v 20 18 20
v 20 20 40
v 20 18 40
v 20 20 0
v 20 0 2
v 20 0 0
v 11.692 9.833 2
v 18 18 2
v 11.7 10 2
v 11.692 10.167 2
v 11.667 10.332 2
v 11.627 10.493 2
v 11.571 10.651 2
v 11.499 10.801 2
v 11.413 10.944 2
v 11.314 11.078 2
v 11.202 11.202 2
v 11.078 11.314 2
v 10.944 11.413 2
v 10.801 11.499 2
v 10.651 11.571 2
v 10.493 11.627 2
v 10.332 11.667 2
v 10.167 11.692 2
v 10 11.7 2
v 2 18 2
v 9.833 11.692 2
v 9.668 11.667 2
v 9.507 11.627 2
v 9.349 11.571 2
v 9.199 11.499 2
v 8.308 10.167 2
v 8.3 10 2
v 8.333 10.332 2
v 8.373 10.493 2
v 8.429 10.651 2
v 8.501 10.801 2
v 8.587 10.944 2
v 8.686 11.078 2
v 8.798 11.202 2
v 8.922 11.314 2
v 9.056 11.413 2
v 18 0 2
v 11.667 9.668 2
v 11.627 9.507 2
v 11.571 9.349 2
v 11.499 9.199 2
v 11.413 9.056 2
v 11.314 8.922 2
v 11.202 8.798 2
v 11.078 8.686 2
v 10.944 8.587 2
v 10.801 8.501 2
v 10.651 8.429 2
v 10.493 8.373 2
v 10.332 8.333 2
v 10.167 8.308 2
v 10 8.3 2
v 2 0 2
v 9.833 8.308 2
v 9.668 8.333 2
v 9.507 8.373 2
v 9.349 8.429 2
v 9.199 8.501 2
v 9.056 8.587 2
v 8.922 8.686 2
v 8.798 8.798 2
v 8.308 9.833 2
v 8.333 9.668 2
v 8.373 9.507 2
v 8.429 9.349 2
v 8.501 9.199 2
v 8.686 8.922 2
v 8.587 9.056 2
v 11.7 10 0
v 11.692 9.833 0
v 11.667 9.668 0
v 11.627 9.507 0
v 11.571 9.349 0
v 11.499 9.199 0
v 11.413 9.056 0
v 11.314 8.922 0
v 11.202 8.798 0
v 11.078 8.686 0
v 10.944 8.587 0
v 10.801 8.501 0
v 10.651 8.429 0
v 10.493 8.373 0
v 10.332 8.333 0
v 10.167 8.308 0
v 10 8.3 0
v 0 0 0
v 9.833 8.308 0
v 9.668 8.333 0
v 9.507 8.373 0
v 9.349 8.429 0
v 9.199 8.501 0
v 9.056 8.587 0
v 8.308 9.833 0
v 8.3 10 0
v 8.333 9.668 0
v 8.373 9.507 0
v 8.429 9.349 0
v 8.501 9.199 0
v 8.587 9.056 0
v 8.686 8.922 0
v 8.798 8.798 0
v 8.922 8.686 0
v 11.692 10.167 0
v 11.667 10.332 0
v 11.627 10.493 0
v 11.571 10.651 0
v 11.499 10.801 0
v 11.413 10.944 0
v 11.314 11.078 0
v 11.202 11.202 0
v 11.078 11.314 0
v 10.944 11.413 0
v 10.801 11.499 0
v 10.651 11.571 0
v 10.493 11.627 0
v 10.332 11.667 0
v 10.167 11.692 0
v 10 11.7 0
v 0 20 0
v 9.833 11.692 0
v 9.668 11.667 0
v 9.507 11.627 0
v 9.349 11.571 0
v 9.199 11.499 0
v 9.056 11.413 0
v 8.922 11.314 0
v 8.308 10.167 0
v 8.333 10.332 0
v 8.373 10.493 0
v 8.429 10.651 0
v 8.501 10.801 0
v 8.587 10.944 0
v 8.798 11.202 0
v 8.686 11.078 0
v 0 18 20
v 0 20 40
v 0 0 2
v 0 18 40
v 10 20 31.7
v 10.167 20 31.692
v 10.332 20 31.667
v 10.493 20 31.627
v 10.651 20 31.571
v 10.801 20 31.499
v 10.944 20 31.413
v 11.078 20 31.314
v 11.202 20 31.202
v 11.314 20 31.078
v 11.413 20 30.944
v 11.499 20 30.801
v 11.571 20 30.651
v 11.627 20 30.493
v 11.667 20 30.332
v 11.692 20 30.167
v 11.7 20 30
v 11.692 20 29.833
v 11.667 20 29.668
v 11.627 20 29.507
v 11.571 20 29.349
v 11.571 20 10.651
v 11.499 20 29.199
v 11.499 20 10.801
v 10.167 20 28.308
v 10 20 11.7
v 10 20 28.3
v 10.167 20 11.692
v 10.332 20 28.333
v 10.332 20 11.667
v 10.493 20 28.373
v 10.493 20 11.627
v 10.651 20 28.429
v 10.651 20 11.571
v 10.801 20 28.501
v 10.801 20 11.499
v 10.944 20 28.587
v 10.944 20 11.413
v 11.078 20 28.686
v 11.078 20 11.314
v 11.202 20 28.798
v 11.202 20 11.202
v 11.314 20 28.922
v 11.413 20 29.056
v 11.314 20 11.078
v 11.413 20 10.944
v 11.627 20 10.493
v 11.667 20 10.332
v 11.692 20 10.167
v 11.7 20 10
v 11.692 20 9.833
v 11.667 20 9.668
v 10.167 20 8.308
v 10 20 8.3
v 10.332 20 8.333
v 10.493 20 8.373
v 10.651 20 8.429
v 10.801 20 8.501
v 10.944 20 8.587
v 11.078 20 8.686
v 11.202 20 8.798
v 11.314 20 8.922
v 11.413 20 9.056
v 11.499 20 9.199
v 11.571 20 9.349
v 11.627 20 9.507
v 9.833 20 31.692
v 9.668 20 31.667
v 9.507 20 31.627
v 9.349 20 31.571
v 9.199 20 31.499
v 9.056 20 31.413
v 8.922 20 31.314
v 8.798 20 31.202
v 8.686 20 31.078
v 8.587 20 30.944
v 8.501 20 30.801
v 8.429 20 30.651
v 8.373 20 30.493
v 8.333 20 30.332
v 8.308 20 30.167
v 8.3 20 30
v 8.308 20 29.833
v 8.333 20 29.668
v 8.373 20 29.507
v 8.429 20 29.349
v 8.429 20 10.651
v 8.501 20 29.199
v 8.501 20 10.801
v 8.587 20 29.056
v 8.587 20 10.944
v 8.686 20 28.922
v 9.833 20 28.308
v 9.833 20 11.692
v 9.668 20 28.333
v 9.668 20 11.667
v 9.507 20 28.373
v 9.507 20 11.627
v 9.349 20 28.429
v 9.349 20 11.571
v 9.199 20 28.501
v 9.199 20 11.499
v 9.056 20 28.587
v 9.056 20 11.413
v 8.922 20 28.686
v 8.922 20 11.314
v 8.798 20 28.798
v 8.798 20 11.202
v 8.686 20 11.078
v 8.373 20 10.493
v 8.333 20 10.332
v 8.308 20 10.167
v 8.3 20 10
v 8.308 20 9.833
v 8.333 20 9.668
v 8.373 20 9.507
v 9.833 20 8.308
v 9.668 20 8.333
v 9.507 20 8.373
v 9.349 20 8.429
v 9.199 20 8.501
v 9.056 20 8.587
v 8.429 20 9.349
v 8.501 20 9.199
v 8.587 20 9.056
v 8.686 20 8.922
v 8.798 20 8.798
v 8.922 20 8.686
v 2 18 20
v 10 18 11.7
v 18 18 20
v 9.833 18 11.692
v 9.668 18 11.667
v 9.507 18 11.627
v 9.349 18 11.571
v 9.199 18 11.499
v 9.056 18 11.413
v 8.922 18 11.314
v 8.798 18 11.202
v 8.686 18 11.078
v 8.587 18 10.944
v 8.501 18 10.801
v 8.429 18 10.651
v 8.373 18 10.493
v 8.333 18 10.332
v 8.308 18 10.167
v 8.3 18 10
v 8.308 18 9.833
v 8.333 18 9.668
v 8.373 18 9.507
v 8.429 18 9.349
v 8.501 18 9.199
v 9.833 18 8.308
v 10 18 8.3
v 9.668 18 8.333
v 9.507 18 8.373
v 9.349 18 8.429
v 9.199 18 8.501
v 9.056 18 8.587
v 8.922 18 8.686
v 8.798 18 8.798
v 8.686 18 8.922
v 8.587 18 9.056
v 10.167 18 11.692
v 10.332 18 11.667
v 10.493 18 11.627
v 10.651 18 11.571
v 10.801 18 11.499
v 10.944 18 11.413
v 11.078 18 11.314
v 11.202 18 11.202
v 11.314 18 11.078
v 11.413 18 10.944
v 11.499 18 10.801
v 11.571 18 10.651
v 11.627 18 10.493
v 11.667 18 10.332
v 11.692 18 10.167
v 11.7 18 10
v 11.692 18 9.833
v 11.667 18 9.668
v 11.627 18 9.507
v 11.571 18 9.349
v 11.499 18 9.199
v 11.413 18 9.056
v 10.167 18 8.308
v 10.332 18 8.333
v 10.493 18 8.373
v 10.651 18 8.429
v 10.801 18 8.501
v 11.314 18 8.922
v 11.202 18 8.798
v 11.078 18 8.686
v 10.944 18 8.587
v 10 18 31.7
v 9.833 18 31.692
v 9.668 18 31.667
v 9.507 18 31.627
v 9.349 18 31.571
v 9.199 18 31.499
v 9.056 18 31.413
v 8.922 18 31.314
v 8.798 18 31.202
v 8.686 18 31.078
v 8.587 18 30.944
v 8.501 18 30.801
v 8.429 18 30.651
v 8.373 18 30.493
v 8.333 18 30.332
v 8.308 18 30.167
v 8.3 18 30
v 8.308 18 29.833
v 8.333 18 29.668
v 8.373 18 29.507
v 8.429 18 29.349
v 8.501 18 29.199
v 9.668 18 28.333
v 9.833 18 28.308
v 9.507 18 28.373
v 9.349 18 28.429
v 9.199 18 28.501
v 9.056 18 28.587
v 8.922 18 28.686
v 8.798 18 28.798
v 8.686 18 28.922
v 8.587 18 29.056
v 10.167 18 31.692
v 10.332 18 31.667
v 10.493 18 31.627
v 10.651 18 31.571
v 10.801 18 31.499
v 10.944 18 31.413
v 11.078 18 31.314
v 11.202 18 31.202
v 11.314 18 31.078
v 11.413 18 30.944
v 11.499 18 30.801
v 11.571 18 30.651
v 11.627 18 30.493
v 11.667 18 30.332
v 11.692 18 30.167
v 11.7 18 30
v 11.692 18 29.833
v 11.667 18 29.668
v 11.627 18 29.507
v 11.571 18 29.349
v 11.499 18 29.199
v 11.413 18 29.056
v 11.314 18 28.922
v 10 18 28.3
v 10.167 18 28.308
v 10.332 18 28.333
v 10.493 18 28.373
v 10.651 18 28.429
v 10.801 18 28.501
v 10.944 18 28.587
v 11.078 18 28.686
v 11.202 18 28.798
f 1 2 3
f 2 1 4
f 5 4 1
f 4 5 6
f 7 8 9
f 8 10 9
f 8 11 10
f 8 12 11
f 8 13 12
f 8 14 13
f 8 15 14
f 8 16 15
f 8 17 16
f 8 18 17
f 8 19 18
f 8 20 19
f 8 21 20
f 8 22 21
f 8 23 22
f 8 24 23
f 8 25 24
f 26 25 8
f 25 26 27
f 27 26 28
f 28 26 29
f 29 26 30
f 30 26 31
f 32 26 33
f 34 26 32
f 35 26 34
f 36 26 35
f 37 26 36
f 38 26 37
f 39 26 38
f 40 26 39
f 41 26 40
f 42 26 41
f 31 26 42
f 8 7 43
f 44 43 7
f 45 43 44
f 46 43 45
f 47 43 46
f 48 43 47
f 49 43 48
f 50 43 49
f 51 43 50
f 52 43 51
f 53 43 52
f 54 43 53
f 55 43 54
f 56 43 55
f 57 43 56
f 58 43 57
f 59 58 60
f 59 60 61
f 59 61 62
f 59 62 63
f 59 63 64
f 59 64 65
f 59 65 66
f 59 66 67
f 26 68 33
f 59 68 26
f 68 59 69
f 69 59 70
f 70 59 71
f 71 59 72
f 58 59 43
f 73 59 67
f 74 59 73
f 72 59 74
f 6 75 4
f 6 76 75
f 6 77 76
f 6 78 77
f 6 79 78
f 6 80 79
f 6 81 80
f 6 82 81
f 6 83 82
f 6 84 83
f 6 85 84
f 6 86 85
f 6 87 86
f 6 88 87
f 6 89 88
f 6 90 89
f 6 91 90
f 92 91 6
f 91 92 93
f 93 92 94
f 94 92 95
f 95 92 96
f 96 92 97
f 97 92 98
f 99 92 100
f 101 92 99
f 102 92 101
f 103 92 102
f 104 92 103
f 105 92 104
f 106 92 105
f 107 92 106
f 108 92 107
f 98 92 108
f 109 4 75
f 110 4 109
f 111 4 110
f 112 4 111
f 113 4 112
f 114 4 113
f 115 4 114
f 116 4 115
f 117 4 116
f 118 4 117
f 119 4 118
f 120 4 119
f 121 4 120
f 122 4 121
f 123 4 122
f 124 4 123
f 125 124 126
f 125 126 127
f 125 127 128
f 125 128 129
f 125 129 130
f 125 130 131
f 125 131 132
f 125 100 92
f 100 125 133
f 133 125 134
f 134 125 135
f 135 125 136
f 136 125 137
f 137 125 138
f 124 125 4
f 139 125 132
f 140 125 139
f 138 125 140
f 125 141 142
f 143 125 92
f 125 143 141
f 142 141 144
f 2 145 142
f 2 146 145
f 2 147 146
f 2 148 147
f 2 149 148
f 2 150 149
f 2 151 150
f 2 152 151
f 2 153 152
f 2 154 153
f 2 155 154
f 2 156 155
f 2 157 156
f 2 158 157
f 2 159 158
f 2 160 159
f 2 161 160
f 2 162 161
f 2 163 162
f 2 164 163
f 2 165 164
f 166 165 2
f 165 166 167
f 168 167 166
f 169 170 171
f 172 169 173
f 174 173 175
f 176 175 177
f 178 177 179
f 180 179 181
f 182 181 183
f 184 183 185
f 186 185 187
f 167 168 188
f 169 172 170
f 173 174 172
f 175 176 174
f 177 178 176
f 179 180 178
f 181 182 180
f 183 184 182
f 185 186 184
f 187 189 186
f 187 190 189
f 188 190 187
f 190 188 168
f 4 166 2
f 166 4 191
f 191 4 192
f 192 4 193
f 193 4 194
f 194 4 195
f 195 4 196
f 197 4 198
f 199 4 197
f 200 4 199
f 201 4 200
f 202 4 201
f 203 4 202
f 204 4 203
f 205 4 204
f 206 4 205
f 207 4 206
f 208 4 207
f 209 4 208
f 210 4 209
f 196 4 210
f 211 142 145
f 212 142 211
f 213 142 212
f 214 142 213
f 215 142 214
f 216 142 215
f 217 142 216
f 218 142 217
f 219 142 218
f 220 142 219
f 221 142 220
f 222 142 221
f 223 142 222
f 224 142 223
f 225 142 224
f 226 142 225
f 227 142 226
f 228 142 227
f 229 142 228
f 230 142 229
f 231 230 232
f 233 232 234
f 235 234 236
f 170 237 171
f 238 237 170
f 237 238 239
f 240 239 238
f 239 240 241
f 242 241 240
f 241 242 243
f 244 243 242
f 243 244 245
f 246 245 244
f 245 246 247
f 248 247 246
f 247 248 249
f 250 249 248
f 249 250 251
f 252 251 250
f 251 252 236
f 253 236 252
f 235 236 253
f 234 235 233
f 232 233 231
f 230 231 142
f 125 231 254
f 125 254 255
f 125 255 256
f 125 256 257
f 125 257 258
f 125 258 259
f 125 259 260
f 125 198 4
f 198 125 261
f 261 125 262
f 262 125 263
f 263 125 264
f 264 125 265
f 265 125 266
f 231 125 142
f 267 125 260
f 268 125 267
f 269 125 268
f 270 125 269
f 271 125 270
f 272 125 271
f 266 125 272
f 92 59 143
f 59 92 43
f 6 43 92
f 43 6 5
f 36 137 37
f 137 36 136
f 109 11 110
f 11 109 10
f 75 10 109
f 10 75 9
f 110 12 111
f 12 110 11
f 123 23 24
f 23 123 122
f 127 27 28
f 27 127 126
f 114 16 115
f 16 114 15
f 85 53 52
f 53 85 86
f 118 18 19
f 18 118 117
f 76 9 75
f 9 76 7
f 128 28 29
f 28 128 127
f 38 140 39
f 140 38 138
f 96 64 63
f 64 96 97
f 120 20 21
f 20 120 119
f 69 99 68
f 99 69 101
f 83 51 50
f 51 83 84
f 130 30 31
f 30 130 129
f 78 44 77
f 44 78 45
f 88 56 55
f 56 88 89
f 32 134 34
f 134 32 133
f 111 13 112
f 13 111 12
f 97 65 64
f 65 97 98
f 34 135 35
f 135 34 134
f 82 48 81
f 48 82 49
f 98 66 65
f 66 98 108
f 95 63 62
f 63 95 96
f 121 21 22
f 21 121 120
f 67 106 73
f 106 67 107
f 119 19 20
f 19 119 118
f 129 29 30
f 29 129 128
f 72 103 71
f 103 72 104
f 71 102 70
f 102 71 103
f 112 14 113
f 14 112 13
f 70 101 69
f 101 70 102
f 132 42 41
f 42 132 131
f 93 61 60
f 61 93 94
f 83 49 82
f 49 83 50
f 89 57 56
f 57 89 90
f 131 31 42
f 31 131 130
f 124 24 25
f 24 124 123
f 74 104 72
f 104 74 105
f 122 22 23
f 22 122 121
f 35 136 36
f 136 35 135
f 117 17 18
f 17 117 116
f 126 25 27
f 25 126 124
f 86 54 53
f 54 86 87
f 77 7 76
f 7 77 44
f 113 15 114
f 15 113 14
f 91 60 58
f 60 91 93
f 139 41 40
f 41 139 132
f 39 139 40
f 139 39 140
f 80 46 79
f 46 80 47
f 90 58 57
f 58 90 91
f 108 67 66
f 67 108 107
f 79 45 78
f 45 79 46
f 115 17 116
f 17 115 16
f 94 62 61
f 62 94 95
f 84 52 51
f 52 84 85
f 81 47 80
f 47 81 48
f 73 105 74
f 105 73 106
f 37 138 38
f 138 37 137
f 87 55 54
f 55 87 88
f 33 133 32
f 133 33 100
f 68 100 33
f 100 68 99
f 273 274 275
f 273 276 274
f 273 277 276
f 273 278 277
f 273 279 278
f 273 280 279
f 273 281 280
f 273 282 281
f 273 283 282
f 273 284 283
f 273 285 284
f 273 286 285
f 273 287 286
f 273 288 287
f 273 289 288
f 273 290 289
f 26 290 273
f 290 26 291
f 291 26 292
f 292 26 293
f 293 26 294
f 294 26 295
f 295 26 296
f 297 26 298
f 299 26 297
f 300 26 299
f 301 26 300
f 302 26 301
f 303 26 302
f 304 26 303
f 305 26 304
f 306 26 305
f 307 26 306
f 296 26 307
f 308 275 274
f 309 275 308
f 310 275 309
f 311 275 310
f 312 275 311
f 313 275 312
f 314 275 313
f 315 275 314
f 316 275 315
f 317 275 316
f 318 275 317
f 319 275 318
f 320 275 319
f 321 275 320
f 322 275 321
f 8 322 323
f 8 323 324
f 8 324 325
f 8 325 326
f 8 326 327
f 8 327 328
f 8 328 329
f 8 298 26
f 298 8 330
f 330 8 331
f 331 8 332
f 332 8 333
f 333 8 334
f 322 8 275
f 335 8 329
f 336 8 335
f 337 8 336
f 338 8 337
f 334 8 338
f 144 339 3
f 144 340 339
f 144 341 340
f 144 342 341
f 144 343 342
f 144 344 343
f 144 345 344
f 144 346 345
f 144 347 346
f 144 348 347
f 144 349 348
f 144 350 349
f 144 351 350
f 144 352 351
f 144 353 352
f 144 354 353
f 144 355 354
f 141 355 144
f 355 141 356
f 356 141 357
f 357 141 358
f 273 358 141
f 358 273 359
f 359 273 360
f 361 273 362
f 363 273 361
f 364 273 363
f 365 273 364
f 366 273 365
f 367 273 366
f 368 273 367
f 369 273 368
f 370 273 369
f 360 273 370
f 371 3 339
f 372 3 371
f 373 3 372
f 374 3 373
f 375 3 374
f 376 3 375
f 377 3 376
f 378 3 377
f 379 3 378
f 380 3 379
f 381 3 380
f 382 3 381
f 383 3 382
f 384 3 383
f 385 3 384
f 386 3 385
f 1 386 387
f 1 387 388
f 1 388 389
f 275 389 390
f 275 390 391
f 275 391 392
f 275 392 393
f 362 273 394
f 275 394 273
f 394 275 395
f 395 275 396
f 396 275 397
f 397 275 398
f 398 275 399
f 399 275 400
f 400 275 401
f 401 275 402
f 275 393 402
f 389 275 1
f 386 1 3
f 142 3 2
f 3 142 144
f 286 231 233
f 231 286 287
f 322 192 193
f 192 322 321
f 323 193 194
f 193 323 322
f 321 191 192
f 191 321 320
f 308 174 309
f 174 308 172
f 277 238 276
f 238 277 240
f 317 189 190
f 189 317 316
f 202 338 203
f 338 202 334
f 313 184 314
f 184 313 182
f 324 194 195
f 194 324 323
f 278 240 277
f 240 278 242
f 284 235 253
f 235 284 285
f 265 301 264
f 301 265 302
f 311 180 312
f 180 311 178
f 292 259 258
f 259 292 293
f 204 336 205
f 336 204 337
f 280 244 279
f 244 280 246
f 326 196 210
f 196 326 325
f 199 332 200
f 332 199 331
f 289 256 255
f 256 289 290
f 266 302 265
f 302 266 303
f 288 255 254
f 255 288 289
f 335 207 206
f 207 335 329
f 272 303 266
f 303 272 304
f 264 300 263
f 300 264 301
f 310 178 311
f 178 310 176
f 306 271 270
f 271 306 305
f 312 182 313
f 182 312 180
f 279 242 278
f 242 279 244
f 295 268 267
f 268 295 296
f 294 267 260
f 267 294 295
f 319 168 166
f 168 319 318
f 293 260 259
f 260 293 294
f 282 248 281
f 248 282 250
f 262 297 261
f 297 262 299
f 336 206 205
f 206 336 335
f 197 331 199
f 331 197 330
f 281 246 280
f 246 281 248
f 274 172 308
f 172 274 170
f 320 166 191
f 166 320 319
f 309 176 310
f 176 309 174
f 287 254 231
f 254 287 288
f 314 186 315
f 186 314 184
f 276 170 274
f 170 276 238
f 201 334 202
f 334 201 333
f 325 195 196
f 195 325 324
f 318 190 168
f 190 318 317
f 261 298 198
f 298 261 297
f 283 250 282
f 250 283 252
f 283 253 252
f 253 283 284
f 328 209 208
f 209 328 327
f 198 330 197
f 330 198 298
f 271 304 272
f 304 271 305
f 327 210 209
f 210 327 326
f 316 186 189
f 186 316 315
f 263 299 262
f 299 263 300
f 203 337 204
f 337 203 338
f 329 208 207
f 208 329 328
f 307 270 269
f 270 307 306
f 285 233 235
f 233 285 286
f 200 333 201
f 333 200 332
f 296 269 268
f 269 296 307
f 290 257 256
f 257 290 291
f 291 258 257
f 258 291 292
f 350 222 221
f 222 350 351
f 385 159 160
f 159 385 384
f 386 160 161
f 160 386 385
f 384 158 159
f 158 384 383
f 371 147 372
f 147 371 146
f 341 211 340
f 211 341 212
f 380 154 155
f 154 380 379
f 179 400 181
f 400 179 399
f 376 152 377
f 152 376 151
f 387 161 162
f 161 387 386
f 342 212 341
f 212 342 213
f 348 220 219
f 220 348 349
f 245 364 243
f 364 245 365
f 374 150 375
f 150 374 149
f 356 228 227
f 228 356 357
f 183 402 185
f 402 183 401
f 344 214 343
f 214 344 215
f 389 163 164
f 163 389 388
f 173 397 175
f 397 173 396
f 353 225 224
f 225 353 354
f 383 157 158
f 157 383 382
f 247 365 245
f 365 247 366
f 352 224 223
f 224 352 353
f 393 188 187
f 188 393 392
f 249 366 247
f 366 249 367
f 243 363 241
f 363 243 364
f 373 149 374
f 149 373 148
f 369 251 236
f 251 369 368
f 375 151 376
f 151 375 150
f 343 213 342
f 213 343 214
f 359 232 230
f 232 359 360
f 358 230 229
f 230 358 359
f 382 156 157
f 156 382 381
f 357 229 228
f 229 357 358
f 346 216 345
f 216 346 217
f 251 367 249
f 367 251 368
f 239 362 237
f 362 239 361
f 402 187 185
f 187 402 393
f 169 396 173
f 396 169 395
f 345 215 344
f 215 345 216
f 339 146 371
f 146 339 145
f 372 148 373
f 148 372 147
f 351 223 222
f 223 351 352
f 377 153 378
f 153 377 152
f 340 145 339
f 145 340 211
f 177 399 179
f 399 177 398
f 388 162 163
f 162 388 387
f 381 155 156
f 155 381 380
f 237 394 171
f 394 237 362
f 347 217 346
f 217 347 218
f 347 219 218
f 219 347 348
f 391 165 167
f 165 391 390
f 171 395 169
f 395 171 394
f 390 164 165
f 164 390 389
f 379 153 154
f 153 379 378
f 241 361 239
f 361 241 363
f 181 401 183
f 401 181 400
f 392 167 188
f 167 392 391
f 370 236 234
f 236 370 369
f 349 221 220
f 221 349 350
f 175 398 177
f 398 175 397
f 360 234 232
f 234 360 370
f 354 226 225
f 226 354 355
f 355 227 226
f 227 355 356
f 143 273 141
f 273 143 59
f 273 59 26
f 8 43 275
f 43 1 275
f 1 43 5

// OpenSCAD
$fn=64;

dia_screw = 3.4;
wid_bar = 20;
thickness = 2;

extra = (wid_bar - dia_screw)/2;
wid_glue = 2*wid_bar;
len_glue = wid_glue;

bar_connector(dia_screw,wid_bar,thickness);

module bar_connector(dia,wid,thick)
{
    extra = (wid - dia)/2;
    wid_glue = wid;
    len_glue = 2 * wid_bar;
    
    difference()
    {
        cube([wid,wid,thick]);
        translate([extra+dia/2,extra+dia/2,0])
        {
            #cylinder(h = thick, d = dia);
        }
    }
    
    translate([0,wid_bar,0])
    {
        rotate([90,0,0])
        {
            difference()
            {
                cube([wid_glue,len_glue,thick]);
                translate([extra+dia/2,extra+dia/2,0])
                {
                    #cylinder(h = thick, d = dia);
                }
                translate([extra+dia/2,extra+dia/2+wid,0])
                {
                    #cylinder(h = thick, d = dia);
                }
            }
        }
    }
 
    stabilizer();
    translate([wid-thick,0,0])
    {
        stabilizer();
    }
    
    module stabilizer()
    {
        translate([0,0,wid+thick])
        {
            rotate([0,90,0])
            {
                linear_extrude(thick)
                {
                    polygon(points=[[wid,wid],[wid,0],[0,wid]], paths=[[0,1,2]]);
                }
            }
        }
    }
}
